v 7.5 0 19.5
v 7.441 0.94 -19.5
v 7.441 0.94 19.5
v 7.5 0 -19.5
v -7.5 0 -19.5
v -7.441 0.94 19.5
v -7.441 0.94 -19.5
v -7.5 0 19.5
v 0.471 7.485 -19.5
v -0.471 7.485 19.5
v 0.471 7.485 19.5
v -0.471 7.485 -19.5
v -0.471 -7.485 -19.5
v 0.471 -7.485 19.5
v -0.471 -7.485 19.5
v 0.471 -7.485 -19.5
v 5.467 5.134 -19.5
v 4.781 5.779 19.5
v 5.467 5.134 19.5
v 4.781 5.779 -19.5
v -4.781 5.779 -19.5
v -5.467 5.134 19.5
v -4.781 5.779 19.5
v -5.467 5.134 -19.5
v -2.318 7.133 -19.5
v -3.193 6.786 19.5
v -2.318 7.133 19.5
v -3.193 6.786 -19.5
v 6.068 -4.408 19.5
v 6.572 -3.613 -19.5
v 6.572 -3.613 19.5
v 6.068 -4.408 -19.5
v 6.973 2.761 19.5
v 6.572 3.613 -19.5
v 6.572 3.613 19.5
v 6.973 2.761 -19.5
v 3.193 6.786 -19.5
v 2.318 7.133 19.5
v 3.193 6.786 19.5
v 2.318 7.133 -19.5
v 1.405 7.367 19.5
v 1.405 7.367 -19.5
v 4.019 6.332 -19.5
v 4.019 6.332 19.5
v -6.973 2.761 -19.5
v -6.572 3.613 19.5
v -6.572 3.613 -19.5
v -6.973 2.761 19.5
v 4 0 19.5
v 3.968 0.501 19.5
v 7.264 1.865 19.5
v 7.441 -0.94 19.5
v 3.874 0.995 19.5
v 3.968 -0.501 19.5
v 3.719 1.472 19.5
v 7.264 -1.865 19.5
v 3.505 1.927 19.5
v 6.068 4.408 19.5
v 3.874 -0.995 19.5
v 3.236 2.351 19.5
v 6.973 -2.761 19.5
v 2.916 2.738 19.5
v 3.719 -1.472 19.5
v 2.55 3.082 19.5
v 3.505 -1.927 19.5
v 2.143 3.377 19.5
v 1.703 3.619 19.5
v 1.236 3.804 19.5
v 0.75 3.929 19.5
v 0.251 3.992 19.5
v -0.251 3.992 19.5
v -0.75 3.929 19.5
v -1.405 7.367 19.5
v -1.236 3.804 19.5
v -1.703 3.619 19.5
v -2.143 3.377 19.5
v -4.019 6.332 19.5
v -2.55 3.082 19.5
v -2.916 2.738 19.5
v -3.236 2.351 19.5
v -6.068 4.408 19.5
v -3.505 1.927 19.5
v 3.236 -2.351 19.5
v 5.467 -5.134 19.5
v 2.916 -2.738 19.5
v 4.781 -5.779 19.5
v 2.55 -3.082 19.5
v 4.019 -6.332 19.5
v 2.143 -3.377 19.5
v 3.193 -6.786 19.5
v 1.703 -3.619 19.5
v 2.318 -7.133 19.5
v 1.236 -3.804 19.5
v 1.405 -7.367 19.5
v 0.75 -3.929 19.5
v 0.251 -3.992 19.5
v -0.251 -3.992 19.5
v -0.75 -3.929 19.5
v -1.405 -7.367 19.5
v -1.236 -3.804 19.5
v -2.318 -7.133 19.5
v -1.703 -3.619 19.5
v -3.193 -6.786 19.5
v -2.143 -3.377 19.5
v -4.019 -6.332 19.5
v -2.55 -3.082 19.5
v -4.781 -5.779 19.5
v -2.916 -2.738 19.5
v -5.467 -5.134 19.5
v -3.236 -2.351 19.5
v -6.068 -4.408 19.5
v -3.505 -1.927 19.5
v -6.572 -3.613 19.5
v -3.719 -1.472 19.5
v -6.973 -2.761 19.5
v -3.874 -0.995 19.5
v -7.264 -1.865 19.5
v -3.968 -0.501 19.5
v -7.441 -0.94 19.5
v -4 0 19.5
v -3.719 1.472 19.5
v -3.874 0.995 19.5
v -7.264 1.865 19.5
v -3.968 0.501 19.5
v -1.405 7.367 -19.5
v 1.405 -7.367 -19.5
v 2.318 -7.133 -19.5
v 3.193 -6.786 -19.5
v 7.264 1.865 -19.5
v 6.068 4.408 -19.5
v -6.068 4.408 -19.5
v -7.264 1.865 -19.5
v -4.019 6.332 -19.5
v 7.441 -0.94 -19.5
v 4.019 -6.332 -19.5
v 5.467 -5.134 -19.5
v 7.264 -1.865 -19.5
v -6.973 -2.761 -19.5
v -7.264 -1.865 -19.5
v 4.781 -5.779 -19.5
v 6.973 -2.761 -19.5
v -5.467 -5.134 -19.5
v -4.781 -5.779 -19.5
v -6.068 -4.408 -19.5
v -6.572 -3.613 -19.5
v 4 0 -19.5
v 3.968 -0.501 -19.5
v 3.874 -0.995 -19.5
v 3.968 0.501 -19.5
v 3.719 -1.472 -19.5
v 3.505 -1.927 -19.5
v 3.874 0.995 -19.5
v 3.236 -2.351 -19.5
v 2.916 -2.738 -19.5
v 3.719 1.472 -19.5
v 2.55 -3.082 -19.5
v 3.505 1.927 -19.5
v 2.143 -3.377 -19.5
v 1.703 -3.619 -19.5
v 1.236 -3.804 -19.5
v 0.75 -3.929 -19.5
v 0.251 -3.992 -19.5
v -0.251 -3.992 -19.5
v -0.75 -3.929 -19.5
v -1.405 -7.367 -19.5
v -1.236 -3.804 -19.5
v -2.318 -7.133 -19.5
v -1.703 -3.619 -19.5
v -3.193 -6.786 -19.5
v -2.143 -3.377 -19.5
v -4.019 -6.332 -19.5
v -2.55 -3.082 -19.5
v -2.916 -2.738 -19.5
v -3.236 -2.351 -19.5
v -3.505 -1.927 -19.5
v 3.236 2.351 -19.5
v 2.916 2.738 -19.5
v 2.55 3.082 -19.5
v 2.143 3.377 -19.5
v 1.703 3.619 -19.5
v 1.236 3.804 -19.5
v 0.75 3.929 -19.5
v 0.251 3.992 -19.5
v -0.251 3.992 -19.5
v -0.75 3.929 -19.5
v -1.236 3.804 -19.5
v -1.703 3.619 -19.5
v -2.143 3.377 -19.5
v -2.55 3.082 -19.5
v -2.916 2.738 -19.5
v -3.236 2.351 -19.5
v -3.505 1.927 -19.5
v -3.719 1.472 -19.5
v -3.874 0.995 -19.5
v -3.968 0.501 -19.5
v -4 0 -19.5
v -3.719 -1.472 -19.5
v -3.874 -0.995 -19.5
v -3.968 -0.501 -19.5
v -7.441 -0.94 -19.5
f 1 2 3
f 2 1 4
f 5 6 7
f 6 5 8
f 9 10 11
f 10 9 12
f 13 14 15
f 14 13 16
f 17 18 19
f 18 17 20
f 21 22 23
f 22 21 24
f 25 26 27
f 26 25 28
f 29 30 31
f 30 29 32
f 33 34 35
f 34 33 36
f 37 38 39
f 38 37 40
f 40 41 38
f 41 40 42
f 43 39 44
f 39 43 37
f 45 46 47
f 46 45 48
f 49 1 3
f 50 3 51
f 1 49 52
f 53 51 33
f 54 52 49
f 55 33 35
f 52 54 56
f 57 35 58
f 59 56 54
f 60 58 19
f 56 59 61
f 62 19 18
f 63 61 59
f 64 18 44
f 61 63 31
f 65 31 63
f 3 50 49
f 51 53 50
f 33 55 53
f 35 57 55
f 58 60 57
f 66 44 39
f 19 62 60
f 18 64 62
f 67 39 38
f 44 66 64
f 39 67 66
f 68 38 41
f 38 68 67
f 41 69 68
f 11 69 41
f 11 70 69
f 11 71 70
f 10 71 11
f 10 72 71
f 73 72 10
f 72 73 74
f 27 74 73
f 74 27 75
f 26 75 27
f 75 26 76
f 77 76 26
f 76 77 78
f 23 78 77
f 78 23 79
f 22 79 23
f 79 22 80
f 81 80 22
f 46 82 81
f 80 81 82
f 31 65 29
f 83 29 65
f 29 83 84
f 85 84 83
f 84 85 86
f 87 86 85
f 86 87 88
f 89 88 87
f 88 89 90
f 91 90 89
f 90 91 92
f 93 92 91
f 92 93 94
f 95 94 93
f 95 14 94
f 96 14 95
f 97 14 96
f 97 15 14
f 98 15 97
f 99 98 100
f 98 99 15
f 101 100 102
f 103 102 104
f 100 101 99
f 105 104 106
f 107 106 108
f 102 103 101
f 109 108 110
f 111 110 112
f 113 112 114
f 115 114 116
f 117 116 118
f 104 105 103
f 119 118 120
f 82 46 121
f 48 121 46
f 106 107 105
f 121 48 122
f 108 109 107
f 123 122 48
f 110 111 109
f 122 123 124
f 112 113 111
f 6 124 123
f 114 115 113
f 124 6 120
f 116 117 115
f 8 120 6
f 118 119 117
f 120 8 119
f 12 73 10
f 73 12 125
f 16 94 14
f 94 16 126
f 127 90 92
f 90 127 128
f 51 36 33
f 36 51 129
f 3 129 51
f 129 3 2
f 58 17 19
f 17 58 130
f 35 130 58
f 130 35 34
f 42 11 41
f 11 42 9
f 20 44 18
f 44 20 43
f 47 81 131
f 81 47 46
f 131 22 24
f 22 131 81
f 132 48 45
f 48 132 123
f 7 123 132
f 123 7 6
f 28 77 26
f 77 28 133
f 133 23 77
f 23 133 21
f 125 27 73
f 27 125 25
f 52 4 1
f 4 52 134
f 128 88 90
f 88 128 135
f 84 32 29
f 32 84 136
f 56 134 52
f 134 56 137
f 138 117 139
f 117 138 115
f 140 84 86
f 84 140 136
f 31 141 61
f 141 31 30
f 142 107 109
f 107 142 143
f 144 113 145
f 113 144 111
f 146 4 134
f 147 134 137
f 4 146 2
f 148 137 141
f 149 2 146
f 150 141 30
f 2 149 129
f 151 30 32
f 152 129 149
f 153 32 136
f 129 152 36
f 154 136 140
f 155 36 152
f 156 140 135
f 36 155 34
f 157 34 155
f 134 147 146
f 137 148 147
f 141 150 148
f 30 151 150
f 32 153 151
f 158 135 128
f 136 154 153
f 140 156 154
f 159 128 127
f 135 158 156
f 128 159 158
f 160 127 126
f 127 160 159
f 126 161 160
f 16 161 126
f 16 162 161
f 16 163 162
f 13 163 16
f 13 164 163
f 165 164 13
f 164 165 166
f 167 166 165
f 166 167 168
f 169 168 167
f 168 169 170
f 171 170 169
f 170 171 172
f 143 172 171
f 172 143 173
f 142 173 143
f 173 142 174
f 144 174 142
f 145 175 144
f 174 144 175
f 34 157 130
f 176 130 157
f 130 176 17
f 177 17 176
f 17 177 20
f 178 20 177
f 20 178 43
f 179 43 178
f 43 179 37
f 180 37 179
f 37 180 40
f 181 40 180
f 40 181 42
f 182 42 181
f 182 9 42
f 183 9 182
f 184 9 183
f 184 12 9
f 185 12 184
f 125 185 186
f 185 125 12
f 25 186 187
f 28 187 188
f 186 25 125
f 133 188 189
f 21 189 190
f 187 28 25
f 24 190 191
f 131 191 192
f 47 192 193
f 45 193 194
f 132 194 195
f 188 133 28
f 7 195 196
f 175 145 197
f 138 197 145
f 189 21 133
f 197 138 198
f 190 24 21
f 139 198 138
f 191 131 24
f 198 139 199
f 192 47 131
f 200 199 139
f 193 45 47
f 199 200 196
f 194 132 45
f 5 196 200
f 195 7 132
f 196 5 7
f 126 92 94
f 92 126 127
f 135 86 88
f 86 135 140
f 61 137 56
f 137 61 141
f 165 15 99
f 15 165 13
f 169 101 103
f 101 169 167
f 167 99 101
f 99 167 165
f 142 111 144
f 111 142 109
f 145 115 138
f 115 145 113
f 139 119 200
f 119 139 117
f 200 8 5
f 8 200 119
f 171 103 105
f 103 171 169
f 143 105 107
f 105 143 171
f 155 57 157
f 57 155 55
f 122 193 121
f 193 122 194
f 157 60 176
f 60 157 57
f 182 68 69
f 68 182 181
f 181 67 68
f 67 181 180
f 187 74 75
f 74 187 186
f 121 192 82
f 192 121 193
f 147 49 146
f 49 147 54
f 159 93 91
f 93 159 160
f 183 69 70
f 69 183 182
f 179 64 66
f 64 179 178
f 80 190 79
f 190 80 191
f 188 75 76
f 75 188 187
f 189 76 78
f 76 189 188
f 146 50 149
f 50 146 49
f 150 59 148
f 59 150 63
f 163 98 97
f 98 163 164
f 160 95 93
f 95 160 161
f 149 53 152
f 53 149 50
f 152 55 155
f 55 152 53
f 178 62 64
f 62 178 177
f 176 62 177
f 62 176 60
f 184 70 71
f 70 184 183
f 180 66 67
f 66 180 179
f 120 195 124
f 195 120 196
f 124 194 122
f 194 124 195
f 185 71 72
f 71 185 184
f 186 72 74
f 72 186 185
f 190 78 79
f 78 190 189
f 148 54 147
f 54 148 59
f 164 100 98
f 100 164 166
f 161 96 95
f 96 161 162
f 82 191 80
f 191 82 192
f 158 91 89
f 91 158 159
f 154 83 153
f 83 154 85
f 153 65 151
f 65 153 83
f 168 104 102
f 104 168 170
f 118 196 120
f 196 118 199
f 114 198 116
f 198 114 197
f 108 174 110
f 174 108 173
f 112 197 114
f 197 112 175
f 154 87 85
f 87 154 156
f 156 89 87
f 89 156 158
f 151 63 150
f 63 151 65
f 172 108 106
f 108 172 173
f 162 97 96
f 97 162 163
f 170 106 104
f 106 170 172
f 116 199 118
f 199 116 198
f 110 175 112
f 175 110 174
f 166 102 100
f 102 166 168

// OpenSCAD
$fn = 50;


difference() {
	union() {
		translate(v = [0, 0, -19.5000000000]) {
			cylinder(h = 39, r = 7.5000000000);
		}
	}
	union() {
		translate(v = [0, 0, -100.0000000000]) {
			cylinder(h = 200, r = 4.0000000000);
		}
	}
}
